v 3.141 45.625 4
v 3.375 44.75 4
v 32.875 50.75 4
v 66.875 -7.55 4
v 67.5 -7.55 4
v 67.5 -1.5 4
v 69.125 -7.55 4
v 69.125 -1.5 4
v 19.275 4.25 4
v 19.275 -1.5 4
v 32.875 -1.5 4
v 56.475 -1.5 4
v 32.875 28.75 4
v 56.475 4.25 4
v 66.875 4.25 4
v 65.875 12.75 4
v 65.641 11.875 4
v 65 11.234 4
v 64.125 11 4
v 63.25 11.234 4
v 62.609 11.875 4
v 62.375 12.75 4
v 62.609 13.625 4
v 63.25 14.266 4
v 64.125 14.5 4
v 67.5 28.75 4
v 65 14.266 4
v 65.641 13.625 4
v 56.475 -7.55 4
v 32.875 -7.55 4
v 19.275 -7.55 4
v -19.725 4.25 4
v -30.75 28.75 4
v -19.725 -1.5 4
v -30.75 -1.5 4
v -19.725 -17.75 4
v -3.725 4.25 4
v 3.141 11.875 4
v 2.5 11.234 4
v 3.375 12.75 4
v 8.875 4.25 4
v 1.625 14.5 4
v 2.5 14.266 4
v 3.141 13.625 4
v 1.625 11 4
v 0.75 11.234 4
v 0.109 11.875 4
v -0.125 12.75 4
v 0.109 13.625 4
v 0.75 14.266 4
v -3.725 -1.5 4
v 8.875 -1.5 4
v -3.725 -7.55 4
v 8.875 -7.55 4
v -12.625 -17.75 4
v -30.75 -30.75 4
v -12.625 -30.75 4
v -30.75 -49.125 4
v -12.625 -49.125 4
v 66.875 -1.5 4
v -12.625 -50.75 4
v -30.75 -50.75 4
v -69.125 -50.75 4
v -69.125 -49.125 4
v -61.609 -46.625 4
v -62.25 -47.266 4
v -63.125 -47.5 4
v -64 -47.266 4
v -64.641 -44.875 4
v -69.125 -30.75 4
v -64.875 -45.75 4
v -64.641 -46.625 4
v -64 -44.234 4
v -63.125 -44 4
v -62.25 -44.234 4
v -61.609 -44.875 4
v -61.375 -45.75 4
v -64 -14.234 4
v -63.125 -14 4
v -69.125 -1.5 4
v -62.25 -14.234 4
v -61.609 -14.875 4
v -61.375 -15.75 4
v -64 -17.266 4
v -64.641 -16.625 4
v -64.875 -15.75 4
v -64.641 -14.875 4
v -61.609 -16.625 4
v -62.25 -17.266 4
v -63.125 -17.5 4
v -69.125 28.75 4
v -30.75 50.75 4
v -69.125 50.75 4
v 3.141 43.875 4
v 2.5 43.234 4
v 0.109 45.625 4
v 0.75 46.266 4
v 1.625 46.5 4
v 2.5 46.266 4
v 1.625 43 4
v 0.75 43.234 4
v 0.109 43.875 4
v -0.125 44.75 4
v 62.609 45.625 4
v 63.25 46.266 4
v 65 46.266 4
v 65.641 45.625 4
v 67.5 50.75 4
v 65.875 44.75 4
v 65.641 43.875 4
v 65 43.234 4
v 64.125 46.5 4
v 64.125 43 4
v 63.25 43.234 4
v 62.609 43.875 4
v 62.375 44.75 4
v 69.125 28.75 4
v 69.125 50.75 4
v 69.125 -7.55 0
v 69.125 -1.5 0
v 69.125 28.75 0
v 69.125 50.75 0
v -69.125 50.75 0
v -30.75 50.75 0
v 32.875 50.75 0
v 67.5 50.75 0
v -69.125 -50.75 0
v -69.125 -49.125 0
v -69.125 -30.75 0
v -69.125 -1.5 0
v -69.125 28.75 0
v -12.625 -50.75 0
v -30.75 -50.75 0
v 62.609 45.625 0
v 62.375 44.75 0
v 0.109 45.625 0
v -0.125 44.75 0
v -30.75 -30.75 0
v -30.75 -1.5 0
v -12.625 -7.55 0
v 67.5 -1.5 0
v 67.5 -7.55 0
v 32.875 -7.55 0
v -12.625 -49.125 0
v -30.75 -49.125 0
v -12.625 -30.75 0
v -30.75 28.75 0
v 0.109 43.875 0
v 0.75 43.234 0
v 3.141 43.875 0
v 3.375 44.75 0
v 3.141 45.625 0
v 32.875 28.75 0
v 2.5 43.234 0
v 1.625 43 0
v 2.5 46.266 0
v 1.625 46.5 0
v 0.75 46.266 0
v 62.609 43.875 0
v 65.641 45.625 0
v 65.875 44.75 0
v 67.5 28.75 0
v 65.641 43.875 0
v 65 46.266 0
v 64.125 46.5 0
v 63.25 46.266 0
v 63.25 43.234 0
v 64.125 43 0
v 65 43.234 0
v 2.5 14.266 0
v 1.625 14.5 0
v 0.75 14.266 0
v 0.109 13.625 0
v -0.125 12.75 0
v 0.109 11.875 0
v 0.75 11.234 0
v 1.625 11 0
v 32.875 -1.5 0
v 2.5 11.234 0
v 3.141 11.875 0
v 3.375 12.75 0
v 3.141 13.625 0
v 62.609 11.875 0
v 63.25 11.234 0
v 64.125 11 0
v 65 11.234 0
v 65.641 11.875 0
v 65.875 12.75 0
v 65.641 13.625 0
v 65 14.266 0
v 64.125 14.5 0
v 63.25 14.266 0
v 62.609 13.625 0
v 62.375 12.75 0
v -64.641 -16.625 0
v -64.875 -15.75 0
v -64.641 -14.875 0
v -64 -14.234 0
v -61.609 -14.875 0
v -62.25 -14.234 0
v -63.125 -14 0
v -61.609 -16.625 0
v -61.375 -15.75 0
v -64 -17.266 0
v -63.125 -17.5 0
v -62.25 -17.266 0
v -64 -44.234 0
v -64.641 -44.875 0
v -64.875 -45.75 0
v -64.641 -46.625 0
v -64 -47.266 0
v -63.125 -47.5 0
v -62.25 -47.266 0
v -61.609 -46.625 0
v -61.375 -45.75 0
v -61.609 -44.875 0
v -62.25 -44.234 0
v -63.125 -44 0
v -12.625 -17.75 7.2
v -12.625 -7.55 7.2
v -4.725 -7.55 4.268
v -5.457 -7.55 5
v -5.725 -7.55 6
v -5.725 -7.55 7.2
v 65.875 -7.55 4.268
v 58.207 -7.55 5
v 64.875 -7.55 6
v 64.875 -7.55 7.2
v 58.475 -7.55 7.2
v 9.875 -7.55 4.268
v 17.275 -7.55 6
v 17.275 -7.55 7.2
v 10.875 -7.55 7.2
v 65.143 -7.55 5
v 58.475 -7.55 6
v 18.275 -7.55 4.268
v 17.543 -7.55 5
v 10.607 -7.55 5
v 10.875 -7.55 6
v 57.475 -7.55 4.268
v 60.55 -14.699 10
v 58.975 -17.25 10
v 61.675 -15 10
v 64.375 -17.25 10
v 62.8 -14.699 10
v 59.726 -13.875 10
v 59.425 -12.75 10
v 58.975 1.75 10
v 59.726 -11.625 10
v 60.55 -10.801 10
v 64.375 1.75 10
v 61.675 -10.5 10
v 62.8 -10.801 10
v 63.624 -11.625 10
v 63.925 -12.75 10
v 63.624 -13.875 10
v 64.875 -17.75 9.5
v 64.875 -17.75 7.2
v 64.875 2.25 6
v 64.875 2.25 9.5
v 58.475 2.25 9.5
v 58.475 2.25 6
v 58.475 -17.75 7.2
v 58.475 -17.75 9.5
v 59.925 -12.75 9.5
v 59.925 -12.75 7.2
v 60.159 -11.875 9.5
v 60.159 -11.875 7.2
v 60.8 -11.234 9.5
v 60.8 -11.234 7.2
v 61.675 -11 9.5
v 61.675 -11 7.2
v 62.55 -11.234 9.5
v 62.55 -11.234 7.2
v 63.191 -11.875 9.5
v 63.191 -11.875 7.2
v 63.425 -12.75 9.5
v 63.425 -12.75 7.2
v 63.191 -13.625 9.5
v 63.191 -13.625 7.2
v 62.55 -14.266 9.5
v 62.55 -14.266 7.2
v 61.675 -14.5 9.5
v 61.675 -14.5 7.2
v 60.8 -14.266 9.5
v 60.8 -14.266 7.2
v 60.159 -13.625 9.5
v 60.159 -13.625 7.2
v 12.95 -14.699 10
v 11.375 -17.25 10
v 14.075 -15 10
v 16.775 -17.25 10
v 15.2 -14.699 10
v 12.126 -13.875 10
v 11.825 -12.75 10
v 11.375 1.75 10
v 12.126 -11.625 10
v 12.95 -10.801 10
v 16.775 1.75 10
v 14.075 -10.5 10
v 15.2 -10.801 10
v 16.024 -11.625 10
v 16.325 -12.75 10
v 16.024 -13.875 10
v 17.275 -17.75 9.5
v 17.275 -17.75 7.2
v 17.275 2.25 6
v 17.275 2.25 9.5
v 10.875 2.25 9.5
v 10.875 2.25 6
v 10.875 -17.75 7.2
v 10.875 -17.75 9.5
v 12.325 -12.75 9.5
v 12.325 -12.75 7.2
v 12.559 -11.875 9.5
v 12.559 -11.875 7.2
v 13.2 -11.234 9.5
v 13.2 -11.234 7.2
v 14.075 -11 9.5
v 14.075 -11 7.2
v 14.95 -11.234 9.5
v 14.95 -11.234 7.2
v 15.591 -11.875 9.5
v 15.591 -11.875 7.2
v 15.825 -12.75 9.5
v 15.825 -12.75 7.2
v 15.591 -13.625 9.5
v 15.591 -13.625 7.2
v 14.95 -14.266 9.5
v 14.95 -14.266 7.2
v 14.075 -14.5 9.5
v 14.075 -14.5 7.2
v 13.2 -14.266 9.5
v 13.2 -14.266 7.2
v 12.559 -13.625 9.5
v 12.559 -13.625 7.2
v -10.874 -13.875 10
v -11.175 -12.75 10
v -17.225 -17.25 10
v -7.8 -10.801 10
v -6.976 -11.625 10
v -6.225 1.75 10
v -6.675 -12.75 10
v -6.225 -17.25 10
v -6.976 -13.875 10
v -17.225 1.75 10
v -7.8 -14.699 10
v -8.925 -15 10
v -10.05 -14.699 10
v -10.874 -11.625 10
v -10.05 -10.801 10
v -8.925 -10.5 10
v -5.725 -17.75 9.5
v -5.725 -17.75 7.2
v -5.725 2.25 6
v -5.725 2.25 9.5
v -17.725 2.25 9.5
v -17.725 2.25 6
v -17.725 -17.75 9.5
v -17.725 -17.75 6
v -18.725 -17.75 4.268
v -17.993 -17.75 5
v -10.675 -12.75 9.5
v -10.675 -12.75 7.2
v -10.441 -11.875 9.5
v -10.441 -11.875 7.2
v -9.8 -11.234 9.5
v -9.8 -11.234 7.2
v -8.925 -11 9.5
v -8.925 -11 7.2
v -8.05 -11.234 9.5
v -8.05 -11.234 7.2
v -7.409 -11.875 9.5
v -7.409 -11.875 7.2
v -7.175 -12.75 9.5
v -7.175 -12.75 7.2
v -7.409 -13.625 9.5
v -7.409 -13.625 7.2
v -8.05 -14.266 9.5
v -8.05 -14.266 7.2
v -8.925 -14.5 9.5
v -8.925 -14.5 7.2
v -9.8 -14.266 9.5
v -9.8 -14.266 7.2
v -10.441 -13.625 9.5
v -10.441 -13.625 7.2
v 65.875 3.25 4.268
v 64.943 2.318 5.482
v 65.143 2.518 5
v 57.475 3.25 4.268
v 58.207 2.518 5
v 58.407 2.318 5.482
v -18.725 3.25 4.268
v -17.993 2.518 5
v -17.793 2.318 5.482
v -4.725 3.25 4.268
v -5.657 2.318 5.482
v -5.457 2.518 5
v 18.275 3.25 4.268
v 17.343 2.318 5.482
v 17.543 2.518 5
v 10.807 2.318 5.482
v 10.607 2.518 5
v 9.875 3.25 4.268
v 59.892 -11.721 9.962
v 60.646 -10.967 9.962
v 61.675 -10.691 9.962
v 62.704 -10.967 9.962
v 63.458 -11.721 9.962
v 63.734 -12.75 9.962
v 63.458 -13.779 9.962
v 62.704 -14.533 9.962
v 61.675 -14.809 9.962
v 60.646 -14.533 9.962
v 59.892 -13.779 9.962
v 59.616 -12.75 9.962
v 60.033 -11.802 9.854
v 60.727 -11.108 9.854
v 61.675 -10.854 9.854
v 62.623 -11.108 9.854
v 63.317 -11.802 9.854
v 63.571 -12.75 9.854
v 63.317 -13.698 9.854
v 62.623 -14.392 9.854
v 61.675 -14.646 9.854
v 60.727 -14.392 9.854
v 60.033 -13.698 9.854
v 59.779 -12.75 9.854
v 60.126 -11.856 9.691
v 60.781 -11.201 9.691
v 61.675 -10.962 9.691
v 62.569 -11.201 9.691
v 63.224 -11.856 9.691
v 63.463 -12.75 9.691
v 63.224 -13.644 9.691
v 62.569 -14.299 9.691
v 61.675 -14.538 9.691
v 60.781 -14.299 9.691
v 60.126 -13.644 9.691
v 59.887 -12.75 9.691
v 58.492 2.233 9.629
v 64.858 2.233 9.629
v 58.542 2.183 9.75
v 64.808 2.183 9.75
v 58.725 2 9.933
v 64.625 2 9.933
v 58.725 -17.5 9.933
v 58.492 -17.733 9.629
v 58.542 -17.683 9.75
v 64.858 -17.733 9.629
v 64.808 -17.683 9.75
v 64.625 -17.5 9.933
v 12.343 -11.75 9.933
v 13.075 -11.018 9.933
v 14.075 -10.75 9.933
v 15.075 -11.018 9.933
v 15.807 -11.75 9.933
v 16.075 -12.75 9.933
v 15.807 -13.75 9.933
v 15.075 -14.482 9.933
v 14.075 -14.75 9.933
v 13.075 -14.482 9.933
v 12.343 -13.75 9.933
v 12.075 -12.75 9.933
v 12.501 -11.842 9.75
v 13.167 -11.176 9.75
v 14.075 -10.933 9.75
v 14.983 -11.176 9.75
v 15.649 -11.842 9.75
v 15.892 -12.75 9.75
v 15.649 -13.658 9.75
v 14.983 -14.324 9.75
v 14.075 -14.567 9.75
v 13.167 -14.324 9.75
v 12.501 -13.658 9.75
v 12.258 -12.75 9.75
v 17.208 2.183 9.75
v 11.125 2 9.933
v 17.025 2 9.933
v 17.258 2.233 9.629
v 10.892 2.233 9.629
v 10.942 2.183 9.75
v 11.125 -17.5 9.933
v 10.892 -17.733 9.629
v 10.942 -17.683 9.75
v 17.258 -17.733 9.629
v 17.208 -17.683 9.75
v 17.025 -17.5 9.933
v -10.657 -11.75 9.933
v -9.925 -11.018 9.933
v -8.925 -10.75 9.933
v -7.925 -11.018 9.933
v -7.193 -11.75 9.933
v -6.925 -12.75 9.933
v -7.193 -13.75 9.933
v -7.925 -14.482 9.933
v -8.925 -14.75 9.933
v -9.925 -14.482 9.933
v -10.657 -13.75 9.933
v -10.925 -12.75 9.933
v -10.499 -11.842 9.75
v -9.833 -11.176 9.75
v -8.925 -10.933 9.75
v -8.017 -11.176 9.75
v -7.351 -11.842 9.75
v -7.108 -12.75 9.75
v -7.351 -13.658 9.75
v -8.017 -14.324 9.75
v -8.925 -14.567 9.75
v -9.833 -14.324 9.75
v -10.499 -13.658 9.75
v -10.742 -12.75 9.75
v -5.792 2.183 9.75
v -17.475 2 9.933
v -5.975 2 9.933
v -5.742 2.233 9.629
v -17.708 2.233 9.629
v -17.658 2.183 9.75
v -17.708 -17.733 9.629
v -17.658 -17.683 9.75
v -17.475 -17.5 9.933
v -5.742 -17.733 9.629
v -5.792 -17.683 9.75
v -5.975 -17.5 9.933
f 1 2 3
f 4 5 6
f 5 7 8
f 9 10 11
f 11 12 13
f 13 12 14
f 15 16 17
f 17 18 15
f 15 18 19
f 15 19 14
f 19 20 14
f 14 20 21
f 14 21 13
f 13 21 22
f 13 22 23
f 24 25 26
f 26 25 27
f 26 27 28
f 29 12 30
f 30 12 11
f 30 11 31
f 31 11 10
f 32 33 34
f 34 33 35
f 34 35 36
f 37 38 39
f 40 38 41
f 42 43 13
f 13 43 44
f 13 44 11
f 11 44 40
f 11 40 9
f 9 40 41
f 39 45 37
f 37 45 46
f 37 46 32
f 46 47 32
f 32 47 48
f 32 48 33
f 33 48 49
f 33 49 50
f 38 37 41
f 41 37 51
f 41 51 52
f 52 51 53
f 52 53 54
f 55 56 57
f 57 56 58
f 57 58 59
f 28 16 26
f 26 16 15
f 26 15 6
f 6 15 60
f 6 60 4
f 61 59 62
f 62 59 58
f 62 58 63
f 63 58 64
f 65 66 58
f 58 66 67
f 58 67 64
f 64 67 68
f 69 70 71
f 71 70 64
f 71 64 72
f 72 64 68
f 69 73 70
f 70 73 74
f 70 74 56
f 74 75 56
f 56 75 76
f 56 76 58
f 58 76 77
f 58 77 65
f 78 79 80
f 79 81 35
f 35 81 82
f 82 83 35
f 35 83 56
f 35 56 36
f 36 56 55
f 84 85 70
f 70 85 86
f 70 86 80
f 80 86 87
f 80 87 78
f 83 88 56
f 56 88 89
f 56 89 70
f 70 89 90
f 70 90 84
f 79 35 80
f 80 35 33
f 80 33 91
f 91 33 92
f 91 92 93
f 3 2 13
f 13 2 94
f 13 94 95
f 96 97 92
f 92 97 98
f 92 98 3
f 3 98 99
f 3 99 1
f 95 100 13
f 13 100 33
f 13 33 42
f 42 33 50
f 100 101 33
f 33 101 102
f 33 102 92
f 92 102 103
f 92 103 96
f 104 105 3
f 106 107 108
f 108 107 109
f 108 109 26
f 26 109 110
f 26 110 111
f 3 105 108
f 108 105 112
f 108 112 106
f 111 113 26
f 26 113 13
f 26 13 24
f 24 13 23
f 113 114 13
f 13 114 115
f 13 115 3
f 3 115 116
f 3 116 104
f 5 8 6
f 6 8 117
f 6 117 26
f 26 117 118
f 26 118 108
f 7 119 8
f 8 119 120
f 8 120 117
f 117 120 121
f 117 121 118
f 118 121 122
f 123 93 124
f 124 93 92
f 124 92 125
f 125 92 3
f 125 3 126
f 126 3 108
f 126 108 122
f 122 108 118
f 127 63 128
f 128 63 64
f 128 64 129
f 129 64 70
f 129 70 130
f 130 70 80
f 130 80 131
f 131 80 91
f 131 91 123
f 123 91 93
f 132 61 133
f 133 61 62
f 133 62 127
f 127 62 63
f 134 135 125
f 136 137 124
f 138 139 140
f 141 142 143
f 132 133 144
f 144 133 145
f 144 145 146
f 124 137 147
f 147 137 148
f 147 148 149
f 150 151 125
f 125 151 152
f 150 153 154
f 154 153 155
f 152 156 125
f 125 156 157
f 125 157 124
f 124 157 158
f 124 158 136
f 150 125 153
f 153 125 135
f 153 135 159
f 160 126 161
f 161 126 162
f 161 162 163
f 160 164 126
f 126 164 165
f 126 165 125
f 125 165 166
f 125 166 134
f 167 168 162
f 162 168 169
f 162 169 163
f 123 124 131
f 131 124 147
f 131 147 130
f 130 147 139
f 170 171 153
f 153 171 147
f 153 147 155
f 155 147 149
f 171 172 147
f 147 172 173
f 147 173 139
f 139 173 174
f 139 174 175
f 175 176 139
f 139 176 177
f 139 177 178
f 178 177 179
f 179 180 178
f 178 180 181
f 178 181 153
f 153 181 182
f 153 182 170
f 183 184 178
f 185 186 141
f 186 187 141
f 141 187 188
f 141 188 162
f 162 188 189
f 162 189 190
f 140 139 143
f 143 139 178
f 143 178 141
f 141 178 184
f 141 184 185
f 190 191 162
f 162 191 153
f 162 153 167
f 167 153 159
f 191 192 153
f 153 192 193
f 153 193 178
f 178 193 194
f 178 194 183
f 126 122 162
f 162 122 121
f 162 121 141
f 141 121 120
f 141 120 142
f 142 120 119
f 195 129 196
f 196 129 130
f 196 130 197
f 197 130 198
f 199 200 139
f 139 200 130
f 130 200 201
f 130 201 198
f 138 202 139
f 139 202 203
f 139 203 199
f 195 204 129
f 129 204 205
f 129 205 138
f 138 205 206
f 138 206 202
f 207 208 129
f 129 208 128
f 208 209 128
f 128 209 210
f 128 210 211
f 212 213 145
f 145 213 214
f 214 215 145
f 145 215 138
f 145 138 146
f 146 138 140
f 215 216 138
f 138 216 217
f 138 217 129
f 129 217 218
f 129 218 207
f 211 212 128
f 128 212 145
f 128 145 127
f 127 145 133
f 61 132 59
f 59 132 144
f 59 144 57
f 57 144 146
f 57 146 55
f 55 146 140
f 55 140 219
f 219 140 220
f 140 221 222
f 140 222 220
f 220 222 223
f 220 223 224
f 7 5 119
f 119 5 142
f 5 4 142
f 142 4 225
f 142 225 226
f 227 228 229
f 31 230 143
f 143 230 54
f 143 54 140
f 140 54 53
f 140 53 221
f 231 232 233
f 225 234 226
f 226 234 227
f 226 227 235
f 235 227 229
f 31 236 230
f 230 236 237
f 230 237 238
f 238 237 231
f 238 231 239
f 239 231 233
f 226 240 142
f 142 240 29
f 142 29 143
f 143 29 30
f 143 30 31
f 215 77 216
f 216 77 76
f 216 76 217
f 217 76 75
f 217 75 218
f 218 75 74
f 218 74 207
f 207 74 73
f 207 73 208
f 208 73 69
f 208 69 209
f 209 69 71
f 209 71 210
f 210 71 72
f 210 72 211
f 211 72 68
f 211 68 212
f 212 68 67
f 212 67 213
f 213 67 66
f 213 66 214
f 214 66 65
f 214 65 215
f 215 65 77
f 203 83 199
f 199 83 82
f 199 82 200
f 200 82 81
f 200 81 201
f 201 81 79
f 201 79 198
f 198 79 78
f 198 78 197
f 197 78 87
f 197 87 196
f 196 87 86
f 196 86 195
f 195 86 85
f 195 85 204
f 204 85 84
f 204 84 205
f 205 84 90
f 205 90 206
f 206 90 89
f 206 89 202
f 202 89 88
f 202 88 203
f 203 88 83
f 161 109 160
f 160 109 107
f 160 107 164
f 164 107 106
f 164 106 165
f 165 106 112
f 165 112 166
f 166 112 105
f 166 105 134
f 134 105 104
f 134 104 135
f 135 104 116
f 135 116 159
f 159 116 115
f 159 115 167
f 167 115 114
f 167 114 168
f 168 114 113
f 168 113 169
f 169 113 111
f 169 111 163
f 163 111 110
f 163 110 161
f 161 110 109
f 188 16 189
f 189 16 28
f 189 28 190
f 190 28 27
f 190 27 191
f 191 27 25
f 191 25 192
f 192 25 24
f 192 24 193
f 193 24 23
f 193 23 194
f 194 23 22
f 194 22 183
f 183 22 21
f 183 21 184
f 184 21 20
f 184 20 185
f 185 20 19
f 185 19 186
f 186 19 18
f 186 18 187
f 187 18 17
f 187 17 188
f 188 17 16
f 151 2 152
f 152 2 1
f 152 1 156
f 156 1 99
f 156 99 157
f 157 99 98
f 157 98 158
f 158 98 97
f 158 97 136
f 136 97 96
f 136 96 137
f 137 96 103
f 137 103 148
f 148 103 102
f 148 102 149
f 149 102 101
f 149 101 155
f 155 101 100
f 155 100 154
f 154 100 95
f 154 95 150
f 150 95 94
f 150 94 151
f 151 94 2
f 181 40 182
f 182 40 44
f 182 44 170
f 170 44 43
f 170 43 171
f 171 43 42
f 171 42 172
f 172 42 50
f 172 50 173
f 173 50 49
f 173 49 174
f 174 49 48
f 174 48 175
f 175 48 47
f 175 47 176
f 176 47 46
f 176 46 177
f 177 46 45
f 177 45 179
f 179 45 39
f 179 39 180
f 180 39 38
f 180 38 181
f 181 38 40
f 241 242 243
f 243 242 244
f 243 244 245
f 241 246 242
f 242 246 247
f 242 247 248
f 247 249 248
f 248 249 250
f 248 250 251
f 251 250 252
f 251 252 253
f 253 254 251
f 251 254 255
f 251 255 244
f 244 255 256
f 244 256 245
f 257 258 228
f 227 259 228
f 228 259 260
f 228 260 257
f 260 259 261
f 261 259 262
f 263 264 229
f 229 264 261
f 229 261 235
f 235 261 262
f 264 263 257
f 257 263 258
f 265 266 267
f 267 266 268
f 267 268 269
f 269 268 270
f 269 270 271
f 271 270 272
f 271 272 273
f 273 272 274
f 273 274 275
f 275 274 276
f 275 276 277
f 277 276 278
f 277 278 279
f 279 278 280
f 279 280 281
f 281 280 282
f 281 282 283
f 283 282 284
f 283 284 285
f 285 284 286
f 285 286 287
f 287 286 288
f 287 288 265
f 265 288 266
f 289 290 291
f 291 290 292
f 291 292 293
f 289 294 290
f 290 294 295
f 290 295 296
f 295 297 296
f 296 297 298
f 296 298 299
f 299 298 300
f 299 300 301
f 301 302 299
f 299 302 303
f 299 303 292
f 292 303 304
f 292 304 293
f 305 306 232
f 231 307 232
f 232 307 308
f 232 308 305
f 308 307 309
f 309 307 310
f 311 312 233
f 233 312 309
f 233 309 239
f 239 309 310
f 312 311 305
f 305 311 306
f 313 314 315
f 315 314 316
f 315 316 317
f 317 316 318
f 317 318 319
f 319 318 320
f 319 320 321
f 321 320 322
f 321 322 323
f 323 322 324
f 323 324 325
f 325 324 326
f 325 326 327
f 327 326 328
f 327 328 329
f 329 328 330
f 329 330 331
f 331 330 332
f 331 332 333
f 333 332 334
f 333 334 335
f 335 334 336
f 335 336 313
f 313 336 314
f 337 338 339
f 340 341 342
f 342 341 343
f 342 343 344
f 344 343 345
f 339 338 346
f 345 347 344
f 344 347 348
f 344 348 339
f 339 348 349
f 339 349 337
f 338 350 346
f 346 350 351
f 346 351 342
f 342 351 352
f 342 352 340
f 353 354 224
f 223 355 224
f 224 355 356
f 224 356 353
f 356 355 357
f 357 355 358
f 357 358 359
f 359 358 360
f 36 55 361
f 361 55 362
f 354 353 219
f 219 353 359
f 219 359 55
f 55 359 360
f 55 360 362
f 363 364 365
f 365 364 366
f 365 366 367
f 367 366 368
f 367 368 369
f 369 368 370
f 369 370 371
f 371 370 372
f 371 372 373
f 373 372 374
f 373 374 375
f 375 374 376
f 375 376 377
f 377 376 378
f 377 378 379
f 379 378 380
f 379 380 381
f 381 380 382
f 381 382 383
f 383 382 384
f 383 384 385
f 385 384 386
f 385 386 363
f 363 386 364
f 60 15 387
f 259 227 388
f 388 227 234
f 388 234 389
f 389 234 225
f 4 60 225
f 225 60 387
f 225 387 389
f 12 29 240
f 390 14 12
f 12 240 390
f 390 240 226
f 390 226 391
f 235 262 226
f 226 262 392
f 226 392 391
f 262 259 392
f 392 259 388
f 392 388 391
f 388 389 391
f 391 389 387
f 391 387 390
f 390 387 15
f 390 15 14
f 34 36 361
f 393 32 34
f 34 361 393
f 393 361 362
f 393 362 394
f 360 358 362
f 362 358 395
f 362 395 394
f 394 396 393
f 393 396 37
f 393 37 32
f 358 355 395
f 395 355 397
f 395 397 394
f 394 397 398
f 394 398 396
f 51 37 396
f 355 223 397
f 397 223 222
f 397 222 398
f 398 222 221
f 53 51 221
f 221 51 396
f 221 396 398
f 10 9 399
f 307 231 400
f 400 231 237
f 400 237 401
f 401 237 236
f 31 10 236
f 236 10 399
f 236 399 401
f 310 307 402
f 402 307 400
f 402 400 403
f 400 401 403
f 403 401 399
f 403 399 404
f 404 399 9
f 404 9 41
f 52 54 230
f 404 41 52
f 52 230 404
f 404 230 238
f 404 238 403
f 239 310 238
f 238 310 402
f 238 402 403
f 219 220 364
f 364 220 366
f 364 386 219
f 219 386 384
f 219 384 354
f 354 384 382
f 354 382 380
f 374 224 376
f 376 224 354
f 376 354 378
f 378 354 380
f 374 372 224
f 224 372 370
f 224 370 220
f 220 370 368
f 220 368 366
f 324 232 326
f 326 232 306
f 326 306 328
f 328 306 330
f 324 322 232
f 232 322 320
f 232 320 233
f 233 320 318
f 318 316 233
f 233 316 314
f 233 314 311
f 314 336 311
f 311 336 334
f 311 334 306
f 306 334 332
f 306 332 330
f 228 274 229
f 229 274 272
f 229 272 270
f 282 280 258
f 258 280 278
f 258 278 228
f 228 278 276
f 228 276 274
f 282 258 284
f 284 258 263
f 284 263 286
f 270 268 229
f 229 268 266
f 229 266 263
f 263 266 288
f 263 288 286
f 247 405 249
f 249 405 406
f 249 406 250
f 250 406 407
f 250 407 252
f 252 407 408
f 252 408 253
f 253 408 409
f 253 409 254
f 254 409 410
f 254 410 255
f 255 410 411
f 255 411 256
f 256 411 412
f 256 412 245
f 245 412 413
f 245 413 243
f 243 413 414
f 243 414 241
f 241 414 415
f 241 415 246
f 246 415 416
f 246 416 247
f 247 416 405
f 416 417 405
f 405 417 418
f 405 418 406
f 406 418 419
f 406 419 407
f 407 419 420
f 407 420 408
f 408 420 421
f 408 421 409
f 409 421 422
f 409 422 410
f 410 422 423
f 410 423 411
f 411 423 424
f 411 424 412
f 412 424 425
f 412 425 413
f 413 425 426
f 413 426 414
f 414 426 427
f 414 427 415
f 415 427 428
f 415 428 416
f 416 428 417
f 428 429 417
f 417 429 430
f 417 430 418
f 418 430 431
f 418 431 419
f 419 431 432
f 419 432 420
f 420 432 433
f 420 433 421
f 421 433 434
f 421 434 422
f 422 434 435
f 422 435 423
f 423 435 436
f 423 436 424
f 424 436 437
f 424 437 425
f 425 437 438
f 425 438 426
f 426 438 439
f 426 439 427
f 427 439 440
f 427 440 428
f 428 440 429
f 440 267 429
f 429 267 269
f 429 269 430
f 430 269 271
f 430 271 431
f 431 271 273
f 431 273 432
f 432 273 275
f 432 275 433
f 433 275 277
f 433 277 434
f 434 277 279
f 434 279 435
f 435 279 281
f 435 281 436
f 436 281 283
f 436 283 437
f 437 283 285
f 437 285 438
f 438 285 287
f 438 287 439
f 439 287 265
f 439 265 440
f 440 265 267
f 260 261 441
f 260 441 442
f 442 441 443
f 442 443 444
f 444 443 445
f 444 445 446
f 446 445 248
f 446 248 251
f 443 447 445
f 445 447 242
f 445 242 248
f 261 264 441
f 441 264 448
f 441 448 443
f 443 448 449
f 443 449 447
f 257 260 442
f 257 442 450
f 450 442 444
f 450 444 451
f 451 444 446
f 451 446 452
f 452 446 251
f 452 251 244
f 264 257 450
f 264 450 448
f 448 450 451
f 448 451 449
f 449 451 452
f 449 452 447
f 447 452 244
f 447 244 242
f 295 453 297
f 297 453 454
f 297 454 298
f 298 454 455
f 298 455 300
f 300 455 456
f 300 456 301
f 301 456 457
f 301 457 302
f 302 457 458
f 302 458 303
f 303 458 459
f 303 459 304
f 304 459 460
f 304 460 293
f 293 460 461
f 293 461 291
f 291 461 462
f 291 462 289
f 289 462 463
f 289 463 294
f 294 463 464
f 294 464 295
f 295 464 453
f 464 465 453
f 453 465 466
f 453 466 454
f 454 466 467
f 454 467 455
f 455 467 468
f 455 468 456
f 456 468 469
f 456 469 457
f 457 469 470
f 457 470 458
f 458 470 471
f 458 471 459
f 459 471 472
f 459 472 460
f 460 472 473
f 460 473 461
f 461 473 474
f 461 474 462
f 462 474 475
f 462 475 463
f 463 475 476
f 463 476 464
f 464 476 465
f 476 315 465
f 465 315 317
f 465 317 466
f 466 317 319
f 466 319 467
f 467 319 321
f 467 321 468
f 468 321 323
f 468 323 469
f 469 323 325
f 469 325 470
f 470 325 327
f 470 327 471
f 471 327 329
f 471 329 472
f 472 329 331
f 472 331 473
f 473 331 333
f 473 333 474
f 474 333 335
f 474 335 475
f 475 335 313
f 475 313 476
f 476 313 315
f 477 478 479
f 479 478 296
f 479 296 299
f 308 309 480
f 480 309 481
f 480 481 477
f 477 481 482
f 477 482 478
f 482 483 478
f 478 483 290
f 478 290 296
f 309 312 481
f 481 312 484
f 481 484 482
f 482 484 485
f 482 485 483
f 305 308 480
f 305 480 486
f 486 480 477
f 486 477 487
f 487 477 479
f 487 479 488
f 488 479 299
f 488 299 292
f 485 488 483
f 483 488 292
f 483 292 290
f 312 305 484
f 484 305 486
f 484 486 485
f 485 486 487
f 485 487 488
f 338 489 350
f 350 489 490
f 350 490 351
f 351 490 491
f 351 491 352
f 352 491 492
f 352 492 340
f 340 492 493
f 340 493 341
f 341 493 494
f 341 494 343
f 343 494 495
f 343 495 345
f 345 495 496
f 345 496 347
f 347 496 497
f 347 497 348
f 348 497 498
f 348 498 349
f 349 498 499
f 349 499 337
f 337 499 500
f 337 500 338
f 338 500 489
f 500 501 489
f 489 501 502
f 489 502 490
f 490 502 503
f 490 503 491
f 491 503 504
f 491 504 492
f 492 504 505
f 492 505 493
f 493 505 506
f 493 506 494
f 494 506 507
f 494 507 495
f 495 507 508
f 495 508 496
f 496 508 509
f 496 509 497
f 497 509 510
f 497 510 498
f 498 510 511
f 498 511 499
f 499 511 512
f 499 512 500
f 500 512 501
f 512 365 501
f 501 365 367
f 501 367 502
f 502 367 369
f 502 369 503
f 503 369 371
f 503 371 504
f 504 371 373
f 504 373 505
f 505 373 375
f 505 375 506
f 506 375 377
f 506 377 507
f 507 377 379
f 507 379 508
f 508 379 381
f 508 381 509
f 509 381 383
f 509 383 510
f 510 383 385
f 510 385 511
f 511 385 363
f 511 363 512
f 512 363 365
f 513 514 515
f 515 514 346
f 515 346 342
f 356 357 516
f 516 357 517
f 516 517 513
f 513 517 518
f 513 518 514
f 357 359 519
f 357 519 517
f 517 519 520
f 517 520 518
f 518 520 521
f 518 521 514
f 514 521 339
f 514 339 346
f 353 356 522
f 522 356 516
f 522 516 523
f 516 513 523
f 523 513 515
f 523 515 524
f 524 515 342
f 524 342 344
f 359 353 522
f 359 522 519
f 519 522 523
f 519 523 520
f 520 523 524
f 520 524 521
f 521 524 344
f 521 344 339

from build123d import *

# Parameters (mm, degrees)
SKETCH_1_W          = 138.25
SKETCH_1_H          = 101.5
EXTRUDE_1_DEPTH     = 4
SKETCH_2_W          = 81.75
SKETCH_2_H          = 43.2
CUT_EXTRUDE_1_DEPTH = 5
SKETCH_3_R          = 1.75
CUT_EXTRUDE_2_DEPTH = 5
SKETCH_4_W          = 6.4
SKETCH_4_H          = 20
SKETCH_4_R          = 1.75
SKETCH_4_W_2        = 12
EXTRUDE_6_DEPTH     = 6
FILLET_3_R          = 2
SKETCH_5_W          = 3.2
SKETCH_5_H          = 10.2
CUT_EXTRUDE_3_DEPTH = 81.75
FILLET_4_R          = 0.5


with BuildPart() as part:
    # ｽｹｯﾁ1 → ﾎﾞｽ - 押し出し1 (new body)
    with BuildSketch(Plane.XY):
        Rectangle(SKETCH_1_W, SKETCH_1_H)
    extrude(amount=EXTRUDE_1_DEPTH)

    # ｽｹｯﾁ2 → ｶｯﾄ - 押し出し1 (cut, through all)
    with BuildSketch(Plane.XY.offset(4)):
        with Locations((28.25, -29.15)):
            Rectangle(SKETCH_2_W, SKETCH_2_H)
    extrude(amount=-CUT_EXTRUDE_1_DEPTH, mode=Mode.SUBTRACT)

    # ｽｹｯﾁ3 → ｶｯﾄ - 押し出し2 (cut, through all)
    with BuildSketch(Plane.XY.offset(4)):
        with Locations((-63.125, -45.75)):
            Circle(SKETCH_3_R)
        with Locations((-63.125, -15.75)):
            Circle(SKETCH_3_R)
        with Locations((64.125, 44.75)):
            Circle(SKETCH_3_R)
        with Locations((64.125, 12.75)):
            Circle(SKETCH_3_R)
        with Locations((1.625, 44.75)):
            Circle(SKETCH_3_R)
        with Locations((1.625, 12.75)):
            Circle(SKETCH_3_R)
    extrude(amount=-CUT_EXTRUDE_2_DEPTH, mode=Mode.SUBTRACT)

    # ｽｹｯﾁ4 → ﾎﾞｽ - 押し出し6 (add)
    with BuildSketch(Plane.XY.offset(4)):
        with Locations((61.675, -7.75)):
            Rectangle(SKETCH_4_W, SKETCH_4_H)
        with Locations((61.675, -12.75)):
            Circle(SKETCH_4_R, mode=Mode.SUBTRACT)
        with Locations((14.075, -7.75)):
            Rectangle(SKETCH_4_W, SKETCH_4_H)
        with Locations((14.075, -12.75)):
            Circle(SKETCH_4_R, mode=Mode.SUBTRACT)
        with Locations((-11.725, -7.75)):
            Rectangle(SKETCH_4_W_2, SKETCH_4_H)
        with Locations((-8.925, -12.75)):
            Circle(SKETCH_4_R, mode=Mode.SUBTRACT)
    extrude(amount=EXTRUDE_6_DEPTH)

    # ﾌｨﾚｯﾄ3
    fillet_3_edges = [part.edges().sort_by_distance(p)[0] for p in [
        (64.875, -2.65, 4),
        (61.675, 2.25, 4),
        (58.475, -2.65, 4),
        (17.275, -2.65, 4),
        (14.075, 2.25, 4),
        (10.875, -2.65, 4),
        (-5.725, -2.65, 4),
        (-11.725, 2.25, 4),
        (-17.725, -7.75, 4),
    ]]
    fillet(fillet_3_edges, radius=FILLET_3_R)

    # ｽｹｯﾁ5 → ｶｯﾄ - 押し出し3 (cut)
    with BuildSketch(Plane(origin=(69.125, 0, 0), x_dir=(0, 0, -1), z_dir=(1, 0, 0))):
        with Locations((-5.6, -12.65)):
            Rectangle(SKETCH_5_W, SKETCH_5_H)
    extrude(amount=-CUT_EXTRUDE_3_DEPTH, mode=Mode.SUBTRACT)

    # ﾌｨﾚｯﾄ4
    fillet_4_edges = [part.edges().sort_by_distance(p)[0] for p in [
        (64.875, -7.75, 10),
        (61.675, 2.25, 10),
        (58.475, -7.75, 10),
        (61.675, -17.75, 10),
        (59.925, -12.75, 10),
        (17.275, -7.75, 10),
        (14.075, 2.25, 10),
        (10.875, -7.75, 10),
        (14.075, -17.75, 10),
        (12.325, -12.75, 10),
        (-5.725, -7.75, 10),
        (-11.725, 2.25, 10),
        (-17.725, -7.75, 10),
        (-11.725, -17.75, 10),
        (-10.675, -12.75, 10),
    ]]
    fillet(fillet_4_edges, radius=FILLET_4_R)


solid = part.part
